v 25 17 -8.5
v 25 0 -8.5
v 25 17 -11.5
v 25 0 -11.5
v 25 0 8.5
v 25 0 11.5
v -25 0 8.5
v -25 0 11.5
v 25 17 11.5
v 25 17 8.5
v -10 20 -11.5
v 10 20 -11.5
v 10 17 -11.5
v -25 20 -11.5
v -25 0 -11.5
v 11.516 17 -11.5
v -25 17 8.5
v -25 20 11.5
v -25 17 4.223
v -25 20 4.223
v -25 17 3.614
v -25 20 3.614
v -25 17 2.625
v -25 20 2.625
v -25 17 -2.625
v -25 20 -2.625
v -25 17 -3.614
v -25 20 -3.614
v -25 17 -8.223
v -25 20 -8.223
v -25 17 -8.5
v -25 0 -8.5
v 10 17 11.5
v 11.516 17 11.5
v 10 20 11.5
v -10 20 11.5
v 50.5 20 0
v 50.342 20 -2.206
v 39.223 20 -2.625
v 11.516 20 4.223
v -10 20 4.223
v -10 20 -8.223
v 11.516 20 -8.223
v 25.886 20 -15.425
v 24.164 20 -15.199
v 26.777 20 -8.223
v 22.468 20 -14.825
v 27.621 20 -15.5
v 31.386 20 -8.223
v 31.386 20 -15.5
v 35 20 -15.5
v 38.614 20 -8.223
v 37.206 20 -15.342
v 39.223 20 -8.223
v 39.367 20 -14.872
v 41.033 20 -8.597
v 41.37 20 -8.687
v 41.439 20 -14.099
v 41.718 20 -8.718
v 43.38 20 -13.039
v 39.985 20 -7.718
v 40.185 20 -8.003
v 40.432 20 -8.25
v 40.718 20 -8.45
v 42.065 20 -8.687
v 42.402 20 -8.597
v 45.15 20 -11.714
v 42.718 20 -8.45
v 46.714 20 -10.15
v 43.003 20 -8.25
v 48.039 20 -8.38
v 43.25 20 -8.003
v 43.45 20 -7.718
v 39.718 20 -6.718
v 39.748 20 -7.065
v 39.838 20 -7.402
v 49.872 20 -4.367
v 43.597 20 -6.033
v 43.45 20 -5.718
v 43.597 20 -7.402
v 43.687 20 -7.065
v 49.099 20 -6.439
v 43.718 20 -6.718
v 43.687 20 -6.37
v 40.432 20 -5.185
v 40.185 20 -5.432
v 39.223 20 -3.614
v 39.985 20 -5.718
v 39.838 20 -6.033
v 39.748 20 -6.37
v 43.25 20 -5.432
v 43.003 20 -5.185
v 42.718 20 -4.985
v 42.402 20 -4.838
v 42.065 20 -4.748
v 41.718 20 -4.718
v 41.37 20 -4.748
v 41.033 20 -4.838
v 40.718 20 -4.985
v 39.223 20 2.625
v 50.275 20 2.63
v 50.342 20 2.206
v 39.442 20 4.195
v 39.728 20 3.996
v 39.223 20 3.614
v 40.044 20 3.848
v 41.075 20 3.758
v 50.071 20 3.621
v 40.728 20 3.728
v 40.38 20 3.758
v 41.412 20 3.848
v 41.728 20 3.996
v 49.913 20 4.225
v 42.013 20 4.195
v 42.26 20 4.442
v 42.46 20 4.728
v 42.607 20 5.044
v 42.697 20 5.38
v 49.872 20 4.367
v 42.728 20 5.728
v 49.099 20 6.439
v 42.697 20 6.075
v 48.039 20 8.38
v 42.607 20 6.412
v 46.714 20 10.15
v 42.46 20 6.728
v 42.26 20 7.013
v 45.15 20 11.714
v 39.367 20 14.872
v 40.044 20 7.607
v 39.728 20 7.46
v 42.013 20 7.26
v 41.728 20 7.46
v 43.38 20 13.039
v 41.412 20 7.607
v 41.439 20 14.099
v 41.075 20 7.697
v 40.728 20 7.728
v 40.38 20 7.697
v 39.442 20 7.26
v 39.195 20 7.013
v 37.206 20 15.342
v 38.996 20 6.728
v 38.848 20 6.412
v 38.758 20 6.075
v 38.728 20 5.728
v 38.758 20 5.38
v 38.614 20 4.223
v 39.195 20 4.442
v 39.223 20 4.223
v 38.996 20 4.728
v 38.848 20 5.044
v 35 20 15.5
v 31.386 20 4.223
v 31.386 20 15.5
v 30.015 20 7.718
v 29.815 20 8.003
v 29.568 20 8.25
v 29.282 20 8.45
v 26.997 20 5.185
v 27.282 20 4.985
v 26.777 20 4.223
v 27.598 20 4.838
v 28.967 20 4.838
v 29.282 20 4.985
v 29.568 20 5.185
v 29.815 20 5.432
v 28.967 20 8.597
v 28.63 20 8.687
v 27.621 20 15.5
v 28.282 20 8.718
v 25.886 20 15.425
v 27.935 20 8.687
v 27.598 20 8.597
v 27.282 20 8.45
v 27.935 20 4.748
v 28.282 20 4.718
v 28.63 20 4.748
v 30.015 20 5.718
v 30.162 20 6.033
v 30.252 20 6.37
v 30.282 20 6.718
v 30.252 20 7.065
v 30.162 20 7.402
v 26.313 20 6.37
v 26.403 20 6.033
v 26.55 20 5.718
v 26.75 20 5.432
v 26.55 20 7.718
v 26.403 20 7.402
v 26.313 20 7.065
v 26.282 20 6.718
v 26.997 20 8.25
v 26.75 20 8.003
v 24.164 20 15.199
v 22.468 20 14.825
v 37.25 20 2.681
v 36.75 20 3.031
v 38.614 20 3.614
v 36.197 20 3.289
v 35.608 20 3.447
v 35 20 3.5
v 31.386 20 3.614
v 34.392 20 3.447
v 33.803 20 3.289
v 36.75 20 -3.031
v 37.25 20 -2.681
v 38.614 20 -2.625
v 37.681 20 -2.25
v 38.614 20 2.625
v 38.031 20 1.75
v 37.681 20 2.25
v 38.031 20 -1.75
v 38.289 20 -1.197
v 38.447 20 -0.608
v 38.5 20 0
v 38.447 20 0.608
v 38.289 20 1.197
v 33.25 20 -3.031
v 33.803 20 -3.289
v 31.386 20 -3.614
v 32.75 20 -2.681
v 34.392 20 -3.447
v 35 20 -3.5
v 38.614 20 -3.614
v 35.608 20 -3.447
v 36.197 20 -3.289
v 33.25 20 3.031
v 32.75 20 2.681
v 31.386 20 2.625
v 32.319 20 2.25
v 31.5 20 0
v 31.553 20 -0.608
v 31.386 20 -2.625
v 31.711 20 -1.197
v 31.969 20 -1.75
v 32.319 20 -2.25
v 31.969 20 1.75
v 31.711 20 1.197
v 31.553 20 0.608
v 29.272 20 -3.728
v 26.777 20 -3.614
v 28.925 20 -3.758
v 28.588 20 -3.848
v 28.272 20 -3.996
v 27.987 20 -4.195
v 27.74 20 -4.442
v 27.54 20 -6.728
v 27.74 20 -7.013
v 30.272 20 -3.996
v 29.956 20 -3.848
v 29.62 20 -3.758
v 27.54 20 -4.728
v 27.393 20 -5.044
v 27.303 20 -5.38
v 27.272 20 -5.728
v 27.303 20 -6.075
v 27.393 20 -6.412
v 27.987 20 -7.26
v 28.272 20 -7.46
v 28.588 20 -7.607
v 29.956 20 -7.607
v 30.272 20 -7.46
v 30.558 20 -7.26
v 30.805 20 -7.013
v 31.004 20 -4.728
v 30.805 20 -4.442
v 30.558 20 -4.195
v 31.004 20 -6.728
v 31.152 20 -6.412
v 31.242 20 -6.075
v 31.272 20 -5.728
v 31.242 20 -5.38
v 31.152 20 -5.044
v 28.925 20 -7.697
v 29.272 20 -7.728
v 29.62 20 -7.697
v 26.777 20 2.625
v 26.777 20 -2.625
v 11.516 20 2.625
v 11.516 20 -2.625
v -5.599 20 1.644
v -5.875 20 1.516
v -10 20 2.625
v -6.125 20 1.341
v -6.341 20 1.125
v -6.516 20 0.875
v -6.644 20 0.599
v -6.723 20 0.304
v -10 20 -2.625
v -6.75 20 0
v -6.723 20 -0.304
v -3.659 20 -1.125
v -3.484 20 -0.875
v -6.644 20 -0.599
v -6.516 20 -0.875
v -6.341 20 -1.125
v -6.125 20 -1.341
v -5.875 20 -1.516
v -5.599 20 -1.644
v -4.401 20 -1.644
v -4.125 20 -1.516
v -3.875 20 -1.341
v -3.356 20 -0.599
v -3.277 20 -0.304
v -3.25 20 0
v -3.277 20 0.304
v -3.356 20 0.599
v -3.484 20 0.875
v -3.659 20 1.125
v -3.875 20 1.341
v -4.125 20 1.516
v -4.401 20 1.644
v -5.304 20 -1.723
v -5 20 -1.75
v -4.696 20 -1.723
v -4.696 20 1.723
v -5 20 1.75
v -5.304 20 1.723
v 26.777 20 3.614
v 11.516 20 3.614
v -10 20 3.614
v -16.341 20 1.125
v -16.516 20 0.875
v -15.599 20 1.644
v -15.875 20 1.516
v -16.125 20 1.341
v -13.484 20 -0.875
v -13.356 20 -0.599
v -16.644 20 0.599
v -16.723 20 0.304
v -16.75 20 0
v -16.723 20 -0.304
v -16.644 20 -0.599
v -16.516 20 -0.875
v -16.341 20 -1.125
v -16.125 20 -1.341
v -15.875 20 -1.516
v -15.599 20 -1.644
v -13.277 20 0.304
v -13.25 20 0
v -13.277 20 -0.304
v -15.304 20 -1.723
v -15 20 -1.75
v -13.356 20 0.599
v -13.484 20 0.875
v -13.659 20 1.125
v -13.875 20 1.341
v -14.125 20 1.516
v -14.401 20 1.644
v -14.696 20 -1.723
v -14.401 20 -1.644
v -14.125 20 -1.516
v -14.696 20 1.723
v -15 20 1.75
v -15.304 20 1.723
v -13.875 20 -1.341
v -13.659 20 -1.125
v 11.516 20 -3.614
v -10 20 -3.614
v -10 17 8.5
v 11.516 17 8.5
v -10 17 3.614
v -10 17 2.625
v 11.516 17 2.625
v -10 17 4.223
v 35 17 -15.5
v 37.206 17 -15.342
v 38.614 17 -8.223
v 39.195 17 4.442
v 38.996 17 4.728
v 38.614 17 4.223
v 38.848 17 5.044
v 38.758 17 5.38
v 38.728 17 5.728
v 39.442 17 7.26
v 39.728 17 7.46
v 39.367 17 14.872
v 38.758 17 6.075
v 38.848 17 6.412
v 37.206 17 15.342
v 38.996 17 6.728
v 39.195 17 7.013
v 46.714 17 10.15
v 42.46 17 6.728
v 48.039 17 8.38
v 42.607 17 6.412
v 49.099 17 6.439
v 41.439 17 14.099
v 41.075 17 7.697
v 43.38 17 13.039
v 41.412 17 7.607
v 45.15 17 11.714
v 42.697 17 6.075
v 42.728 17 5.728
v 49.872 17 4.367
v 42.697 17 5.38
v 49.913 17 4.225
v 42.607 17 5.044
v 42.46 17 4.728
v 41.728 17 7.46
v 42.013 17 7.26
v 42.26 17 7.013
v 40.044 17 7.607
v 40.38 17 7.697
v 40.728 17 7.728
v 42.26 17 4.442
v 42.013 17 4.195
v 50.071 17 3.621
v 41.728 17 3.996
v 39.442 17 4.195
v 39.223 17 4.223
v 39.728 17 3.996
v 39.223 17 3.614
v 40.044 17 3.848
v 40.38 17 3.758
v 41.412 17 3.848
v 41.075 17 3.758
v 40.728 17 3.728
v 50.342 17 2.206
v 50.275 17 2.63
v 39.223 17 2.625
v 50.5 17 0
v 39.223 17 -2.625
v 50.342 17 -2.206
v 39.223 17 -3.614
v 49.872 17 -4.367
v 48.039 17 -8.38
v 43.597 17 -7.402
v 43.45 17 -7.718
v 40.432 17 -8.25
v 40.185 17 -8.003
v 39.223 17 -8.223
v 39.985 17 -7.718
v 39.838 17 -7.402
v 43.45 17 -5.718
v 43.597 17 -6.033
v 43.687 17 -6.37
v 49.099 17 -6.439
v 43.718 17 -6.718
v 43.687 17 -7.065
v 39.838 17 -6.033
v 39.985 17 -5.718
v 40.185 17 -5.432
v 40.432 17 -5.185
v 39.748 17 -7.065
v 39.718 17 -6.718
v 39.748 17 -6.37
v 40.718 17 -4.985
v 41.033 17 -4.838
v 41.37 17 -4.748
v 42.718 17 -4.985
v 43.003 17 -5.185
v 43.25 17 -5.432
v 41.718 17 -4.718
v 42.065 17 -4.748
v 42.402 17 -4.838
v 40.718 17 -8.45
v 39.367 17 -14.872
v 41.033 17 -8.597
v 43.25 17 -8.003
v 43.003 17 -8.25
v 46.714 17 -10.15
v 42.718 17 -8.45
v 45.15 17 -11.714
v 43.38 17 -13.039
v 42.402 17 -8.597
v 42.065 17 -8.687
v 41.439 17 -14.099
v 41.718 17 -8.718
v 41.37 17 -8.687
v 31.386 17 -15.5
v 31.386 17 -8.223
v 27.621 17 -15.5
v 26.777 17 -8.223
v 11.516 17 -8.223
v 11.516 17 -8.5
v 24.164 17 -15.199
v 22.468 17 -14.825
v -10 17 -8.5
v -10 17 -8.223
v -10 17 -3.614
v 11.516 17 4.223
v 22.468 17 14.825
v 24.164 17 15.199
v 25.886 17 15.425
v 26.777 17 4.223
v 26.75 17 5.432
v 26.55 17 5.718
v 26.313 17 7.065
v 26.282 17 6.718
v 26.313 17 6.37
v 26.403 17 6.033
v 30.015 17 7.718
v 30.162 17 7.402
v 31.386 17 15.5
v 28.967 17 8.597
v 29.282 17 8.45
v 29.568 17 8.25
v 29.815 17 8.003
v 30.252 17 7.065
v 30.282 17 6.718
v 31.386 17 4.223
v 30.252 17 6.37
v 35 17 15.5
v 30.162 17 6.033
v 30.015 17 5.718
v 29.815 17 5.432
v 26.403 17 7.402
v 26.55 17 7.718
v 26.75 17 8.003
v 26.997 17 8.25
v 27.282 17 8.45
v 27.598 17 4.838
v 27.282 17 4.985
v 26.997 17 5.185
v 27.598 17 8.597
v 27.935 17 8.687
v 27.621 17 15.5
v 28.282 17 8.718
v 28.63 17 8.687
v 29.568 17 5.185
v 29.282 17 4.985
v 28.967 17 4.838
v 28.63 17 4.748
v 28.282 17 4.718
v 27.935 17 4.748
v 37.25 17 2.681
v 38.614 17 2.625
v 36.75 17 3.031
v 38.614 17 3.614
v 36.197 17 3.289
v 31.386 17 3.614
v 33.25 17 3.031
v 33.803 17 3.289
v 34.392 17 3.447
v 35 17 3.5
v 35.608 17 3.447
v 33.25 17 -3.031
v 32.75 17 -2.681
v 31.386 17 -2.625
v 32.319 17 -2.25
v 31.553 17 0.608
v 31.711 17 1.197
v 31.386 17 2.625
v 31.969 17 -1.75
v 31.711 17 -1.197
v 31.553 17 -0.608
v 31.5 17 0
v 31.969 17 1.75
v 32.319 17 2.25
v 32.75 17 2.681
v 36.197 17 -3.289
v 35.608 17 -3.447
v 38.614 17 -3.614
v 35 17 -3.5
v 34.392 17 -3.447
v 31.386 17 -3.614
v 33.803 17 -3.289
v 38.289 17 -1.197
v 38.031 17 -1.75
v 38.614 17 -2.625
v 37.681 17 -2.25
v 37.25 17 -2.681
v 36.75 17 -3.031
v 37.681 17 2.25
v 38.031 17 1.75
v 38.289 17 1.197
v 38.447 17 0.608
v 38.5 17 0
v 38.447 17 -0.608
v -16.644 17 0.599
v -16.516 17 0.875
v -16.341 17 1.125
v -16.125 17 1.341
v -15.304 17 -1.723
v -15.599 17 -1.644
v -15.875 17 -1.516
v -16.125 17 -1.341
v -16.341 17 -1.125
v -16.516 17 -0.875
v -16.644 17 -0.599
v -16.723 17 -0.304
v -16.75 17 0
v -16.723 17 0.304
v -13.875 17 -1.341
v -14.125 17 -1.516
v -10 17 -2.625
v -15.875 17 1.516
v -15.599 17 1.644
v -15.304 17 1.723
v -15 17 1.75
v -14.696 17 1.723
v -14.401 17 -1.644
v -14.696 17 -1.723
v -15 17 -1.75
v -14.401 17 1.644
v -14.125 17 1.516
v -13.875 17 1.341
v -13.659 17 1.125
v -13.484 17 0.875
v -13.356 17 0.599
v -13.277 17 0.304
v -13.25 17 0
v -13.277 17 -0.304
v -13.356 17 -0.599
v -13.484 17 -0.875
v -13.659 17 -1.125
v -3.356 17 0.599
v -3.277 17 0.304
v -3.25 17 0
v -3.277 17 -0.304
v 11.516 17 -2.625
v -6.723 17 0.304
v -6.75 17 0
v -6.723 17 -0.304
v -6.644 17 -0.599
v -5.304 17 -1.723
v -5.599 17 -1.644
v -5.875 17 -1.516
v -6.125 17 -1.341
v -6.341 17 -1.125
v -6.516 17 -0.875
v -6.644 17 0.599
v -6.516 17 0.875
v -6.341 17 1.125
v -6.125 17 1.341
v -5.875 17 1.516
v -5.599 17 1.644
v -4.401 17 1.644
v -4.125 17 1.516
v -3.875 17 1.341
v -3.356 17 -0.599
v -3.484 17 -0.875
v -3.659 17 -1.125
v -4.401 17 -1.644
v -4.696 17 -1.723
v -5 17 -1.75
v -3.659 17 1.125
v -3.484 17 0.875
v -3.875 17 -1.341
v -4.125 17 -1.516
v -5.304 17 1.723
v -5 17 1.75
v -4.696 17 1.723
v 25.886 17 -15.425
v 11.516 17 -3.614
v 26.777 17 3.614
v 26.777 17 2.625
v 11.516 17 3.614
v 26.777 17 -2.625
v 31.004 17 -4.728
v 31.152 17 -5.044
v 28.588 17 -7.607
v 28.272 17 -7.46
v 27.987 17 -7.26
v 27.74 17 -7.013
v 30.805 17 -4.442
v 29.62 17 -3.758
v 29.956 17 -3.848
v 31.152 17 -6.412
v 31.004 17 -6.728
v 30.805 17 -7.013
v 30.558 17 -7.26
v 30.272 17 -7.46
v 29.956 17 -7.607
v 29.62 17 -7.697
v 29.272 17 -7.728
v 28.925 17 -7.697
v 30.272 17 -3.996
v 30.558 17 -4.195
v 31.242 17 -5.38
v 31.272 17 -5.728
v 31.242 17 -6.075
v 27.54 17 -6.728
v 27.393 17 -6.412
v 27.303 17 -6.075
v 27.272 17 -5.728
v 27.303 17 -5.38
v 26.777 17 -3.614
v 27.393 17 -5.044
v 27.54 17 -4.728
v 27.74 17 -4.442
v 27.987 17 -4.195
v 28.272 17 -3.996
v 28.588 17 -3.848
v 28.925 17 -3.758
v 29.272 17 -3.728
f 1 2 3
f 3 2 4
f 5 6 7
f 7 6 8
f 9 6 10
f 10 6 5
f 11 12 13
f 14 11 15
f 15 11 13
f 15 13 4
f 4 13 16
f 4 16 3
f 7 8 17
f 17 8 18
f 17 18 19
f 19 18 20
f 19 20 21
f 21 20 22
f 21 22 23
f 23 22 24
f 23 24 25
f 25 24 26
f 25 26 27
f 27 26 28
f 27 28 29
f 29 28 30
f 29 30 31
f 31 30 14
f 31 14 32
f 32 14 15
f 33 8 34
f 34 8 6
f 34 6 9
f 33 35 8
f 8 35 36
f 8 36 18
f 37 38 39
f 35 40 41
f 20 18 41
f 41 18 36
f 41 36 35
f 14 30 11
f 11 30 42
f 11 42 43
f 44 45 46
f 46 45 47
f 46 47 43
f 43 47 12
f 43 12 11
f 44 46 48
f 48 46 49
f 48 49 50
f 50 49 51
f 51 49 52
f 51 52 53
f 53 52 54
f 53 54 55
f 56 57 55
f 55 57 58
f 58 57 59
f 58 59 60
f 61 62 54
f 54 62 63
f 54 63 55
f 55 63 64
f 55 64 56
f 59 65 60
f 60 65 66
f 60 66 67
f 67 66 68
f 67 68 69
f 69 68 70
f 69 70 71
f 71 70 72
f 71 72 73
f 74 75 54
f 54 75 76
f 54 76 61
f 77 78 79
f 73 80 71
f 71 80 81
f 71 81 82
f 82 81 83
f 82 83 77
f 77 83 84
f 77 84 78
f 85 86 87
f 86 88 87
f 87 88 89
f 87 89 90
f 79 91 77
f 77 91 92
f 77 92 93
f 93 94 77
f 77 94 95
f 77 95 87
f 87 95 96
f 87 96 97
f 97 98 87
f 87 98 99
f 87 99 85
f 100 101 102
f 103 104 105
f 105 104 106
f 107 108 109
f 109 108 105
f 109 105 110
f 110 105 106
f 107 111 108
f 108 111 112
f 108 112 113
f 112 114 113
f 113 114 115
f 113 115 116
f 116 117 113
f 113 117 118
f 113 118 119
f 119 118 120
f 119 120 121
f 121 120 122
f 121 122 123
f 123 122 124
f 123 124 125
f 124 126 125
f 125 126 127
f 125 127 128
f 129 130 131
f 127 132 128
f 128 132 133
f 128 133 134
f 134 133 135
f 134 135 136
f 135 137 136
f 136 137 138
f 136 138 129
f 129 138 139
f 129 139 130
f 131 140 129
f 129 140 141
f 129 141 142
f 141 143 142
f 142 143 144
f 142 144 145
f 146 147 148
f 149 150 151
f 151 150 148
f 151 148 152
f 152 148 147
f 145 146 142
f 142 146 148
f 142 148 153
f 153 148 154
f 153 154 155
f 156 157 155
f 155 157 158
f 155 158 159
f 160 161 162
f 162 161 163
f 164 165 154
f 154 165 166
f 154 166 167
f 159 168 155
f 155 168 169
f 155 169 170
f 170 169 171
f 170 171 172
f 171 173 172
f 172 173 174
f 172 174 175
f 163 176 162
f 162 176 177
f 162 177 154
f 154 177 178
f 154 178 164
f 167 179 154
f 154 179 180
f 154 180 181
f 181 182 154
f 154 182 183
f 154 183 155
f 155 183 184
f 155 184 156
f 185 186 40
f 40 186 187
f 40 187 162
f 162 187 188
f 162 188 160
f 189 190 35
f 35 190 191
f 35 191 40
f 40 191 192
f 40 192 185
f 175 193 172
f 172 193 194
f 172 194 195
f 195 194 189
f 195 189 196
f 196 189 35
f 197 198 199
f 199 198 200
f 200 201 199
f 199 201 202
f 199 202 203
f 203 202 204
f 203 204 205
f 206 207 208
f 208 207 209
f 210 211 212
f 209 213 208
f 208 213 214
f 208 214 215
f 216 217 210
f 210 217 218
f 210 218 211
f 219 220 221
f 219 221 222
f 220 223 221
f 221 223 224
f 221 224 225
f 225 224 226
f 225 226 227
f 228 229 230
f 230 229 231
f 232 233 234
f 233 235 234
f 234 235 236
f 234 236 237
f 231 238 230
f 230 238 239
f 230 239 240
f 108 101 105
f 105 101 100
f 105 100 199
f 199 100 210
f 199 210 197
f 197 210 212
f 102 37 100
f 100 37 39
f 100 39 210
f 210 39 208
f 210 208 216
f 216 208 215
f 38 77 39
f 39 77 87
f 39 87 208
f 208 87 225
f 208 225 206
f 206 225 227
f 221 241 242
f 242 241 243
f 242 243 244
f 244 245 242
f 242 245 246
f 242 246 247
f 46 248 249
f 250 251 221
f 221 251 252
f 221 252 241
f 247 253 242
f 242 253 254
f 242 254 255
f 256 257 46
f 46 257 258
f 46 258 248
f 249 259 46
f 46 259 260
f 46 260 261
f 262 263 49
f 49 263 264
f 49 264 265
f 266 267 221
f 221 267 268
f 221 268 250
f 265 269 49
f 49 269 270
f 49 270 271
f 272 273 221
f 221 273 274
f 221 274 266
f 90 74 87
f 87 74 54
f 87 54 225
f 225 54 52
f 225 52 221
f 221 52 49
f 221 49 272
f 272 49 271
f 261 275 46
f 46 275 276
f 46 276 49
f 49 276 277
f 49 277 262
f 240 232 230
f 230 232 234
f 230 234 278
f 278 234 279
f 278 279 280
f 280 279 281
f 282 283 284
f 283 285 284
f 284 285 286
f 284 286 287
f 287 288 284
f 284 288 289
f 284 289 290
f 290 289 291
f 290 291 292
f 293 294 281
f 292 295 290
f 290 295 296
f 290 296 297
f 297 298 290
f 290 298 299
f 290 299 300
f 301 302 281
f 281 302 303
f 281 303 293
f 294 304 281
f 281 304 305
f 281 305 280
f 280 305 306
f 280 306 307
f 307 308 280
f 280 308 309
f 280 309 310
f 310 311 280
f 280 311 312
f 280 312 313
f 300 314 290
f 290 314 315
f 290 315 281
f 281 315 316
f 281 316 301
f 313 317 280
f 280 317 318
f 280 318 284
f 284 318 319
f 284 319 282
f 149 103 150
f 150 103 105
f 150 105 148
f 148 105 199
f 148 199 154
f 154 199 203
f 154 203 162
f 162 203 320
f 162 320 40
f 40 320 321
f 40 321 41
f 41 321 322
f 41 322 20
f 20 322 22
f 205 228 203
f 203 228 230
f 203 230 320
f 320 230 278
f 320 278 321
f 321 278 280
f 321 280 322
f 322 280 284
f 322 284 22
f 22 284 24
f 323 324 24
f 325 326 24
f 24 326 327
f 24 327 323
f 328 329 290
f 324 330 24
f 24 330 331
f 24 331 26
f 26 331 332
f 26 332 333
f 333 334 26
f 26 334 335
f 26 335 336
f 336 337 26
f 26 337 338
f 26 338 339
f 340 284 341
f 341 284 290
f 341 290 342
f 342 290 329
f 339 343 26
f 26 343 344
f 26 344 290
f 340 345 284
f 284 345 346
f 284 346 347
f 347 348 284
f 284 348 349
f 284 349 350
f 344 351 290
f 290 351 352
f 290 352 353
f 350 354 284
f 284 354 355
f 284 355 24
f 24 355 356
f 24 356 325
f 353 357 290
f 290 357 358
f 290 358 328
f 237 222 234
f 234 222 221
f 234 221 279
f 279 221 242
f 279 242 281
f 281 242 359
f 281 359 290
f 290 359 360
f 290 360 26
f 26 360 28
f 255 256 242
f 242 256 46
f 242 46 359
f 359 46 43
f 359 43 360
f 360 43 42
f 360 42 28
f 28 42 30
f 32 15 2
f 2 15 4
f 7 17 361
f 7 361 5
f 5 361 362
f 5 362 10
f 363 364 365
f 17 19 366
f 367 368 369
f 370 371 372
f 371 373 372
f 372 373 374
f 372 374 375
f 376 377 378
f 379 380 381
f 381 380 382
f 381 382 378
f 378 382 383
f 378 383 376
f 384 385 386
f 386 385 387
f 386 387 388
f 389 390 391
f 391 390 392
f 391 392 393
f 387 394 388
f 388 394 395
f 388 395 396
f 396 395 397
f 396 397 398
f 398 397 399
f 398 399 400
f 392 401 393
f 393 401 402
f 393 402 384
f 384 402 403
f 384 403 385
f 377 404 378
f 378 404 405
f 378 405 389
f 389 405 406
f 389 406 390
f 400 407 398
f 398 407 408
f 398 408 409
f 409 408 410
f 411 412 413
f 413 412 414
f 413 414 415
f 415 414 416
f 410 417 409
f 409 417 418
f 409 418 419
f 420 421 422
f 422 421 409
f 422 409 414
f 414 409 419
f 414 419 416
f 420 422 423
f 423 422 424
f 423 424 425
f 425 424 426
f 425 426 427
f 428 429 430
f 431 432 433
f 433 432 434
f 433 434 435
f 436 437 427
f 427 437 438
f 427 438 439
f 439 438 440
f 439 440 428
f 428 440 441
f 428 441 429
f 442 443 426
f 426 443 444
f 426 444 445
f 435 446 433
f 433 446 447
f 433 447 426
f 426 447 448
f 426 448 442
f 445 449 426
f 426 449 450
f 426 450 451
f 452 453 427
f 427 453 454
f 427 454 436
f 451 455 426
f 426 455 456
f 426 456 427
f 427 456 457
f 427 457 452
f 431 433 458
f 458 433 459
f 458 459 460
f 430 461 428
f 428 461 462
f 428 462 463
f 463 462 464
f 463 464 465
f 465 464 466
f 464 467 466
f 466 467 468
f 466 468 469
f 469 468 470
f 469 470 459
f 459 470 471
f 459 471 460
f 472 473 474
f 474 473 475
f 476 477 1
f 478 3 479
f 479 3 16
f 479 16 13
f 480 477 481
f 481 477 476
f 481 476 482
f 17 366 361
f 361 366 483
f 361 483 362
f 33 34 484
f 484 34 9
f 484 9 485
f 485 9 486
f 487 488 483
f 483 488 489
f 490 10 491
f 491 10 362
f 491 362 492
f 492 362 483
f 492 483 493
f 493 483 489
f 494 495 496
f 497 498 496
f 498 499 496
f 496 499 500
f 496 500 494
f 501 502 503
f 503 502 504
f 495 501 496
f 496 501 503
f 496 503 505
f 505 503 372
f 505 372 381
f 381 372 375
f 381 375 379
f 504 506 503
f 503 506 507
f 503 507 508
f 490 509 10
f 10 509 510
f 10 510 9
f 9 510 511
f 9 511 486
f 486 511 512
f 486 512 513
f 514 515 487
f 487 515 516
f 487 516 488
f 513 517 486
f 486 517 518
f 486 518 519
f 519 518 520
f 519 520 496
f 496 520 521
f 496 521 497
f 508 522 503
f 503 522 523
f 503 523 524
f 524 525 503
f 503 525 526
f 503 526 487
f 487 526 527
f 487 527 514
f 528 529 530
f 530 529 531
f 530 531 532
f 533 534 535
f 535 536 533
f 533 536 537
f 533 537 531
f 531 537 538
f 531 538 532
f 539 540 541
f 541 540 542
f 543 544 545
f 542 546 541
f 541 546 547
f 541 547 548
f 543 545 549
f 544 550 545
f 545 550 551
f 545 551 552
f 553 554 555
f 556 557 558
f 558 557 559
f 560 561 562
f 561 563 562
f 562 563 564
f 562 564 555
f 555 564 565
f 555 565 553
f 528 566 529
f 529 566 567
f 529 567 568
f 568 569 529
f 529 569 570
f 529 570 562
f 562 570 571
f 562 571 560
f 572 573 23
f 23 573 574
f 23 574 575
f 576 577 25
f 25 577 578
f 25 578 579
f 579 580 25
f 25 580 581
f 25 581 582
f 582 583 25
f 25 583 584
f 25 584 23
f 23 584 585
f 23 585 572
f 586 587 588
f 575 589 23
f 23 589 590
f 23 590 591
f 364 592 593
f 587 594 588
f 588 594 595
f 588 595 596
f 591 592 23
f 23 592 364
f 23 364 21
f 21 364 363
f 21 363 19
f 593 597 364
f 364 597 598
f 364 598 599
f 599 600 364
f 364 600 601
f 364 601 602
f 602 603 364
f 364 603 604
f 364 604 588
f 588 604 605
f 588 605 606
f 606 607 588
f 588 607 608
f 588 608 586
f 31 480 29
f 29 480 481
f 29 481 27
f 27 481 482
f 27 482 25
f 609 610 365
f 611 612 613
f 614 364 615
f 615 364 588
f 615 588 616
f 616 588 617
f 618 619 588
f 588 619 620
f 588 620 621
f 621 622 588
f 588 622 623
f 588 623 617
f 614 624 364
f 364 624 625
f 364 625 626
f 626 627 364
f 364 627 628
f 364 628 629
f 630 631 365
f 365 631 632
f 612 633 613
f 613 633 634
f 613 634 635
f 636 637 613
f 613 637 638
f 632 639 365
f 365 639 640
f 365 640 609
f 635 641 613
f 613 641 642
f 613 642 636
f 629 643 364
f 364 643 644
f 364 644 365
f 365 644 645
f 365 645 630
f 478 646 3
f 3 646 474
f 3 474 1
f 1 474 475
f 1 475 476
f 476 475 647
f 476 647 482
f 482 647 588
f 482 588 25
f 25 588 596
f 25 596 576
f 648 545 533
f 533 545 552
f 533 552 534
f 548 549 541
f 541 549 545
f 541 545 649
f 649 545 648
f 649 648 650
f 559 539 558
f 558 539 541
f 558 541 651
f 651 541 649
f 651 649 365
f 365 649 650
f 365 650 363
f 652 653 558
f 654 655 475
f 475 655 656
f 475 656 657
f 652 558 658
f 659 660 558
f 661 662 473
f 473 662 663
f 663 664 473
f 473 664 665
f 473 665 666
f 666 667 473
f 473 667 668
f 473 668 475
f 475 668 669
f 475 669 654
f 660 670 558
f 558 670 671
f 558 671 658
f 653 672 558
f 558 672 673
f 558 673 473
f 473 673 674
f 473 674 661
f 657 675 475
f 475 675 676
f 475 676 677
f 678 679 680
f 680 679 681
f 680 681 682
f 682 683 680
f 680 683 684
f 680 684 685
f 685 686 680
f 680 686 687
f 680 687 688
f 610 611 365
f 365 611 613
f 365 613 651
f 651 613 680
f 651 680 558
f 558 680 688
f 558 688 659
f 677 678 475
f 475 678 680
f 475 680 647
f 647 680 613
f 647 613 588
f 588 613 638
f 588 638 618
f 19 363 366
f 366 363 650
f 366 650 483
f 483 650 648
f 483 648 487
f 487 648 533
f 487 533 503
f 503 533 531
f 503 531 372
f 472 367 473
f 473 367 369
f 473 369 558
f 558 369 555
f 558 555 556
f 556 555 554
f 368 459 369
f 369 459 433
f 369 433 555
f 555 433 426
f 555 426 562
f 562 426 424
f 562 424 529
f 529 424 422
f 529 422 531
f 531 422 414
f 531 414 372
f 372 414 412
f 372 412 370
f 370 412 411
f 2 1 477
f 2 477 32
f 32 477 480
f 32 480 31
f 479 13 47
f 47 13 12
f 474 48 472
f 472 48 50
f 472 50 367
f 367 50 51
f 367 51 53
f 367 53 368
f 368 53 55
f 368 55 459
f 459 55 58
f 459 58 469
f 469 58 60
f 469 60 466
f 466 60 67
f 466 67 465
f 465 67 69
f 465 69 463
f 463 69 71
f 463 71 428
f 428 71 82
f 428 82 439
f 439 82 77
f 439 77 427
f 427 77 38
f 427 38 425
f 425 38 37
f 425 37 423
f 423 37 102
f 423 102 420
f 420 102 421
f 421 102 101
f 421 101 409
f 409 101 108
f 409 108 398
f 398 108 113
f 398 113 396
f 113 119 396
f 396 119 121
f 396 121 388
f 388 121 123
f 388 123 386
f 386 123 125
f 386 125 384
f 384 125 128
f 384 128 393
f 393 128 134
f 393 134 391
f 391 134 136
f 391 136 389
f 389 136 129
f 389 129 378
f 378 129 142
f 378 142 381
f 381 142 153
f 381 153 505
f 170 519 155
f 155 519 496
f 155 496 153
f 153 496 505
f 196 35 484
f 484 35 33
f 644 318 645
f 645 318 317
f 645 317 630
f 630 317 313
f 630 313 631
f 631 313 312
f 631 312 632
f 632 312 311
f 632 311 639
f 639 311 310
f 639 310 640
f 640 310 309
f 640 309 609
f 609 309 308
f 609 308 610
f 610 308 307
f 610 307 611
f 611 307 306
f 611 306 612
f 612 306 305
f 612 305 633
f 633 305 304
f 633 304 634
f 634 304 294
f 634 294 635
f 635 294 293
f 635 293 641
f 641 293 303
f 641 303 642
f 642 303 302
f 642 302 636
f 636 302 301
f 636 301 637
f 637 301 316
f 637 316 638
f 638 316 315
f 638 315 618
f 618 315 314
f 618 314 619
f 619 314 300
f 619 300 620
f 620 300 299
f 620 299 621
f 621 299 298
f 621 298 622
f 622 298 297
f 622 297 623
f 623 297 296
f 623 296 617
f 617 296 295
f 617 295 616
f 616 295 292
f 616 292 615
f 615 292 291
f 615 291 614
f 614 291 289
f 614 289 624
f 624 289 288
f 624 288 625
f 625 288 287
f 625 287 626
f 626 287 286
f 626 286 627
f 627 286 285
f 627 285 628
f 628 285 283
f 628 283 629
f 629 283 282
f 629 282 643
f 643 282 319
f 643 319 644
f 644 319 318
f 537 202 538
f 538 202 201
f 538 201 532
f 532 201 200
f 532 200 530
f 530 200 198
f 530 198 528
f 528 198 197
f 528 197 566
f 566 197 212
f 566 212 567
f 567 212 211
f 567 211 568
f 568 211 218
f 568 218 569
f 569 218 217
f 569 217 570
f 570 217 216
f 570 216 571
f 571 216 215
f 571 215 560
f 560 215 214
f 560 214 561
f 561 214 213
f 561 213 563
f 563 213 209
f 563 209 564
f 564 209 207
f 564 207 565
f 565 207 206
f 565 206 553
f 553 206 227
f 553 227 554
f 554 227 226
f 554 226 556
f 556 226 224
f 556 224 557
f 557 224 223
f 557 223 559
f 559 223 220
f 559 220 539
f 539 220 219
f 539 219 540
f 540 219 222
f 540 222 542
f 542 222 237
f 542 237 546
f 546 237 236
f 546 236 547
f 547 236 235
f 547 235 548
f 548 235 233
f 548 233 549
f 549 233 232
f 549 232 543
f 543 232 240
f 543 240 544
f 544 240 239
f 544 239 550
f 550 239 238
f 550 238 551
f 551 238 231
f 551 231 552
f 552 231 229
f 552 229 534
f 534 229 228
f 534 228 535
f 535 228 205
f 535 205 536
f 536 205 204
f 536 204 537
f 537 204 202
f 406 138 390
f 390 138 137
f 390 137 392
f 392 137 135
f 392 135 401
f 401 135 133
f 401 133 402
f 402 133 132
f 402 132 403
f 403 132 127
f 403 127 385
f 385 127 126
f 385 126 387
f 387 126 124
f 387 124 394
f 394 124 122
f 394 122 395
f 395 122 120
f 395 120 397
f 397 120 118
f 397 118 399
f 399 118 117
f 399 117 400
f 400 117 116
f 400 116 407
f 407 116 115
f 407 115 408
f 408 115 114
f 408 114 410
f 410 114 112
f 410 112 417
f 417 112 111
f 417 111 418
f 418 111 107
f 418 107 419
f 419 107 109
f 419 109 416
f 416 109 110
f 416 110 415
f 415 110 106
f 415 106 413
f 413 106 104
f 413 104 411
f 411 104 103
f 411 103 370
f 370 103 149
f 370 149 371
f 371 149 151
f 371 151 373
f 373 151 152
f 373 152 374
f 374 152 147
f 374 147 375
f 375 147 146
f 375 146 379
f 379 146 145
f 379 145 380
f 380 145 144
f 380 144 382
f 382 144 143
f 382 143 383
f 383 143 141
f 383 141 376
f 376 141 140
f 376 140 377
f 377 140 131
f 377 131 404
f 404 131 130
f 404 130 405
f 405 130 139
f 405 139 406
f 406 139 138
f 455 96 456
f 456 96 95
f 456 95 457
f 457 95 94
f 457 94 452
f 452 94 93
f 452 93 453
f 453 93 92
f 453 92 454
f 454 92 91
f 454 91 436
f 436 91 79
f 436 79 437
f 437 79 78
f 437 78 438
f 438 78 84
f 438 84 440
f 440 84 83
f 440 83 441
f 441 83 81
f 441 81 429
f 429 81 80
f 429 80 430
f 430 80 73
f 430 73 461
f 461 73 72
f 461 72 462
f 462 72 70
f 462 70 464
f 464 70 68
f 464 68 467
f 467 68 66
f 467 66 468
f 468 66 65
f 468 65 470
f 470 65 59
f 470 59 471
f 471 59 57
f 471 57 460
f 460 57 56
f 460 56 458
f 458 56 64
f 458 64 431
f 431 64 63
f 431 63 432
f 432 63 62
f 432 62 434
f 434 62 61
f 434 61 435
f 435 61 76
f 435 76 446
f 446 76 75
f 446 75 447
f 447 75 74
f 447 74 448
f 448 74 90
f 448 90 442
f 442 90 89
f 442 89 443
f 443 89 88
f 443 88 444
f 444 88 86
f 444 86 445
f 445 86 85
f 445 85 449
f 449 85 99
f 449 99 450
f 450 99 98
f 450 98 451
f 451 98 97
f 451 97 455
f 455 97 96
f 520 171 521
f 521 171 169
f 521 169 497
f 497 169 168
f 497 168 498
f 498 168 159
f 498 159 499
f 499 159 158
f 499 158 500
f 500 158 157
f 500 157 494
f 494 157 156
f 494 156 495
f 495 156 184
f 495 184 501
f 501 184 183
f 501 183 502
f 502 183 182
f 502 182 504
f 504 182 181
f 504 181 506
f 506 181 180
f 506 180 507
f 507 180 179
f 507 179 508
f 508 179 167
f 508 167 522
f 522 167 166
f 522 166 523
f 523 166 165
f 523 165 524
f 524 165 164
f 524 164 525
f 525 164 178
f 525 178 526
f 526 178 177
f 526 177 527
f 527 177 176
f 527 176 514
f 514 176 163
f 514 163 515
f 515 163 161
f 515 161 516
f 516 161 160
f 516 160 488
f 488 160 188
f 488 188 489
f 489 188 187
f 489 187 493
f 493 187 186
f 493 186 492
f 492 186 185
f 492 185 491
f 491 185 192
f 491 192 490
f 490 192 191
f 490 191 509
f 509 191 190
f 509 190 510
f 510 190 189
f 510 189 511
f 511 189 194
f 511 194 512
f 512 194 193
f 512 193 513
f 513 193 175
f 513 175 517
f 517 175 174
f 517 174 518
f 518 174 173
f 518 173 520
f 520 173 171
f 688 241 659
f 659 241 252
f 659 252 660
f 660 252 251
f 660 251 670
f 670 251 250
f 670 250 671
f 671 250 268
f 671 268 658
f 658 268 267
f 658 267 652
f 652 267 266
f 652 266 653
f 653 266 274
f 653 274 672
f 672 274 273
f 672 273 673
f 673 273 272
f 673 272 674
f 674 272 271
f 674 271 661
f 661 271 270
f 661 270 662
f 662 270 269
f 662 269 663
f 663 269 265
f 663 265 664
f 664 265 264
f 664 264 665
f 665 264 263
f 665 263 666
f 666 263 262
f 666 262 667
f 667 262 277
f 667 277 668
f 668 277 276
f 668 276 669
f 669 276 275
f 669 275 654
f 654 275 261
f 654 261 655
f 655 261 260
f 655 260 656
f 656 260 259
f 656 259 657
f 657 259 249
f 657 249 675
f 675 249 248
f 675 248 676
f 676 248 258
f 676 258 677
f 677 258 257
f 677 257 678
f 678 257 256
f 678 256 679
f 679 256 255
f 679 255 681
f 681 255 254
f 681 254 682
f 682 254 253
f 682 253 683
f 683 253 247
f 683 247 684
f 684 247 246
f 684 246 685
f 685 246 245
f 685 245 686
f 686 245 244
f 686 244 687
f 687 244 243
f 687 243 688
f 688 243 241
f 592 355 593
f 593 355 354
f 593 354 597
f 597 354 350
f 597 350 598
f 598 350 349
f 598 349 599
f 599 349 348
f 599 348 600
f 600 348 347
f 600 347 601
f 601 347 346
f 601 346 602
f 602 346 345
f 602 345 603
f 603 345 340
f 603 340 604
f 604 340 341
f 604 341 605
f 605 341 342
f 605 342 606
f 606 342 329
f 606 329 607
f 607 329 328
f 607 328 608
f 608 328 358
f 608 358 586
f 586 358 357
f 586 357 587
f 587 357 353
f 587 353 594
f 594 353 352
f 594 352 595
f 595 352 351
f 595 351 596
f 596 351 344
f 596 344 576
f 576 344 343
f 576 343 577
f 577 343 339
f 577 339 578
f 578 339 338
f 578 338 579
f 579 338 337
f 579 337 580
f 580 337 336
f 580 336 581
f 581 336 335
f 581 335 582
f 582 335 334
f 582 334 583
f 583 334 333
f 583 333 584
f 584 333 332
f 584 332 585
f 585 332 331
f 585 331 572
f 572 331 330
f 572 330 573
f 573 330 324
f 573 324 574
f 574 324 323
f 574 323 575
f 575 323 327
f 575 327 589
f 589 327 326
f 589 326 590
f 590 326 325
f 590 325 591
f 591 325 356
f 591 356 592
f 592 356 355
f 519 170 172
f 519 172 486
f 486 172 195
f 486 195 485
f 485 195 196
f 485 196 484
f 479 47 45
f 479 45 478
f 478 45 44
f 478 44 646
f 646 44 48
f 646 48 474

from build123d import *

# Parameters (mm, degrees)
SKETCH1_W           = 50
SKETCH1_H           = 23
BOSS_EXTRUDE1_DEPTH = 20
SKETCH2_W           = 17
SKETCH2_H           = 17
CUT_EXTRUDE1_DEPTH  = 56.065869647
BOSS_EXTRUDE2_DEPTH = 3
SKETCH4_R           = 1.75
SKETCH4_R_2         = 3.5
SKETCH4_R_3         = 2
CUT_EXTRUDE4_DEPTH  = 57.484511151
FILLET1_R           = 20


with BuildPart() as part:
    # Sketch1 → Boss-Extrude1 (new body)
    with BuildSketch(Plane(origin=(0, 0, 0), x_dir=(1, 0, 0), z_dir=(0, 1, 0))):
        Rectangle(SKETCH1_W, SKETCH1_H)
    extrude(amount=BOSS_EXTRUDE1_DEPTH)

    # Sketch2 → Cut-Extrude1 (cut, through all)
    with BuildSketch(Plane(origin=(25, 0, 0), x_dir=(0, 0, -1), z_dir=(1, 0, 0))):
        with Locations((0, 8.5)):
            Rectangle(SKETCH2_W, SKETCH2_H)
    extrude(amount=-CUT_EXTRUDE1_DEPTH, mode=Mode.SUBTRACT)

    # Sketch3 → Boss-Extrude2 (add)
    with BuildSketch(Plane(origin=(0, 20, 0), x_dir=(1, 0, 0), z_dir=(0, 1, 0))):
        with BuildLine():
            Line((25, 15.5), (35, 15.5))
            ThreePointArc((35, 15.5), (50.5, 0), (35, -15.5))
            Line((35, -15.5), (25, -15.5))
            Line((25, -15.5), (10, -11.5))
            Line((10, -11.5), (25, -11.5))
            Line((25, -11.5), (25, 11.5))
            Line((25, 11.5), (10, 11.5))
            Line((10, 11.5), (25, 15.5))
        make_face()
    extrude(amount=-BOSS_EXTRUDE2_DEPTH)

    # Sketch4 → Cut-Extrude4 (cut, through all)
    with BuildSketch(Plane(origin=(0, 20, 0), x_dir=(1, 0, 0), z_dir=(0, 1, 0))):
        with Locations(Location((-15, 0, 0), (0, 0, 270))):
            Circle(SKETCH4_R)
        with Locations(Location((-5, 0, 0), (0, 0, 270))):
            Circle(SKETCH4_R)
        with Locations(Location((35, 0, 0), (0, 0, 270))):
            Circle(SKETCH4_R_2)
        with Locations(Location((28.282485579, -6.717514421, 0), (0, 0, 270))):
            Circle(SKETCH4_R_3)
        with Locations(Location((41.717514421, 6.717514421, 0), (0, 0, 270))):
            Circle(SKETCH4_R_3)
        with Locations(Location((40.727564928, -5.727564928, 0), (0, 0, 270))):
            Circle(SKETCH4_R_3)
        with Locations(Location((29.272435072, 5.727564928, 0), (0, 0, 270))):
            Circle(SKETCH4_R_3)
    extrude(amount=-CUT_EXTRUDE4_DEPTH, mode=Mode.SUBTRACT)

    # Fillet1
    fillet1_edges = [part.edges().sort_by_distance(p)[0] for p in [
        (25, 18.5, -15.5),
        (25, 18.5, 15.5),
    ]]
    fillet(fillet1_edges, radius=FILLET1_R)


solid = part.part
